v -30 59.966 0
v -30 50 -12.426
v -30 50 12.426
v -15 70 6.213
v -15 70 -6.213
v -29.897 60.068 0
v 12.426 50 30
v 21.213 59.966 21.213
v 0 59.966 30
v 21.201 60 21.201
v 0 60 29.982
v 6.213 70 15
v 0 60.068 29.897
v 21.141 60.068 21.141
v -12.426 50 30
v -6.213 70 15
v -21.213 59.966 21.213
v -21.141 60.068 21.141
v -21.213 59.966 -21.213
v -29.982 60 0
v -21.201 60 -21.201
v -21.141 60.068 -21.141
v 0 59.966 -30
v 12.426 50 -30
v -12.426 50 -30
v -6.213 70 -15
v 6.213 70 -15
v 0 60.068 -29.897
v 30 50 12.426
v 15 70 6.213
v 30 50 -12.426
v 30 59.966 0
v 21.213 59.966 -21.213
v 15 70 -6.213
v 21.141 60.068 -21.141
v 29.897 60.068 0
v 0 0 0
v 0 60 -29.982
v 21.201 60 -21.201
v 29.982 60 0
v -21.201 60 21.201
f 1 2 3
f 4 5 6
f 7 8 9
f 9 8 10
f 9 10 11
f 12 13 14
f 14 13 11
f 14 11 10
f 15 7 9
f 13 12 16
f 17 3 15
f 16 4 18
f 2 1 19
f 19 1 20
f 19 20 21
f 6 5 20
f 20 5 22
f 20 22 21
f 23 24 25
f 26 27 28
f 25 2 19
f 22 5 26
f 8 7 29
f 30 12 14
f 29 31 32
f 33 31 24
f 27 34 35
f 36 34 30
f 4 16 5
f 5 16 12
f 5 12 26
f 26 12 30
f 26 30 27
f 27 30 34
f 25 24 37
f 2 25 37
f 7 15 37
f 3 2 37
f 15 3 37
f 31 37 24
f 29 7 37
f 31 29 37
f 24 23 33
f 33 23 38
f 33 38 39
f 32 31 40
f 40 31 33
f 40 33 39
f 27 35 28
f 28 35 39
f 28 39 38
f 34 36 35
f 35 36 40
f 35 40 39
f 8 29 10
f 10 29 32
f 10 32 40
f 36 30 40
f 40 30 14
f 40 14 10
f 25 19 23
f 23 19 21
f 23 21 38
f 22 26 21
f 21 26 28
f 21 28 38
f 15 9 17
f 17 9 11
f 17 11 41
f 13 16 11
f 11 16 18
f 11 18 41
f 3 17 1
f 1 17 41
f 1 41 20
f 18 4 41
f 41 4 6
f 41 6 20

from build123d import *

# Parameters (mm, degrees)
BOSS_EXTRUDE1_DEPTH = 70
CUT_EXTRUDE1_DEPTH  = 78.164859799
CIRPATTERN1_COUNT   = 8
CUT_EXTRUDE2_DEPTH  = 82.853527719
CIRPATTERN2_COUNT   = 8


with BuildPart() as part:
    # Sketch1 → Boss-Extrude1 (new body)
    with BuildSketch(Plane(origin=(0, 0, 0), x_dir=(1, 0, 0), z_dir=(0, 1, 0))):
        Polygon((0, 0), (-12.426406871, 30), (12.426406871, 30), align=None)
    boss_extrude1 = extrude(amount=BOSS_EXTRUDE1_DEPTH)

    # Sketch2 → Cut-Extrude1 (cut, symmetric)
    with BuildSketch(Plane(origin=(0, 0, 0), x_dir=(0, 0, -1), z_dir=(1, 0, 0))):
        Polygon((15, 70), (30, 60), (30, 70), align=None)
        Polygon((30, 50), (0, 0), (30, 0), align=None)
    cut_extrude1 = extrude(amount=CUT_EXTRUDE1_DEPTH, both=True, mode=Mode.SUBTRACT)

    # CirPattern1: Boss-Extrude1, Cut-Extrude1 ×8 about axis
    cirpattern1_axis = Axis((0, -3.5, 0), (0, 1, 0))
    add([boss_extrude1.rotate(cirpattern1_axis, i * 360 / CIRPATTERN1_COUNT) for i in range(1, CIRPATTERN1_COUNT)])
    add([cut_extrude1.rotate(cirpattern1_axis, i * 360 / CIRPATTERN1_COUNT) for i in range(1, CIRPATTERN1_COUNT)], mode=Mode.SUBTRACT)

    # Sketch3 → Cut-Extrude2 (cut, symmetric)
    with BuildSketch(Plane(origin=(0, 0, 0), x_dir=(0, 1, 0), z_dir=(0.9238795325112865, 0, -0.3826834323650906))):
        Polygon((70, 16.235883004), (70, 32.471766009), (50, 32.471766009), (60, 27.7), align=None)
    cut_extrude2 = extrude(amount=CUT_EXTRUDE2_DEPTH, both=True, mode=Mode.SUBTRACT)

    # CirPattern2: Cut-Extrude2 ×8 about axis
    cirpattern2_axis = Axis((0, -3.5, 0), (0, 1, 0))
    for i in range(1, CIRPATTERN2_COUNT):
        add(cut_extrude2.rotate(cirpattern2_axis, i * 360 / CIRPATTERN2_COUNT), mode=Mode.SUBTRACT)


solid = part.part
